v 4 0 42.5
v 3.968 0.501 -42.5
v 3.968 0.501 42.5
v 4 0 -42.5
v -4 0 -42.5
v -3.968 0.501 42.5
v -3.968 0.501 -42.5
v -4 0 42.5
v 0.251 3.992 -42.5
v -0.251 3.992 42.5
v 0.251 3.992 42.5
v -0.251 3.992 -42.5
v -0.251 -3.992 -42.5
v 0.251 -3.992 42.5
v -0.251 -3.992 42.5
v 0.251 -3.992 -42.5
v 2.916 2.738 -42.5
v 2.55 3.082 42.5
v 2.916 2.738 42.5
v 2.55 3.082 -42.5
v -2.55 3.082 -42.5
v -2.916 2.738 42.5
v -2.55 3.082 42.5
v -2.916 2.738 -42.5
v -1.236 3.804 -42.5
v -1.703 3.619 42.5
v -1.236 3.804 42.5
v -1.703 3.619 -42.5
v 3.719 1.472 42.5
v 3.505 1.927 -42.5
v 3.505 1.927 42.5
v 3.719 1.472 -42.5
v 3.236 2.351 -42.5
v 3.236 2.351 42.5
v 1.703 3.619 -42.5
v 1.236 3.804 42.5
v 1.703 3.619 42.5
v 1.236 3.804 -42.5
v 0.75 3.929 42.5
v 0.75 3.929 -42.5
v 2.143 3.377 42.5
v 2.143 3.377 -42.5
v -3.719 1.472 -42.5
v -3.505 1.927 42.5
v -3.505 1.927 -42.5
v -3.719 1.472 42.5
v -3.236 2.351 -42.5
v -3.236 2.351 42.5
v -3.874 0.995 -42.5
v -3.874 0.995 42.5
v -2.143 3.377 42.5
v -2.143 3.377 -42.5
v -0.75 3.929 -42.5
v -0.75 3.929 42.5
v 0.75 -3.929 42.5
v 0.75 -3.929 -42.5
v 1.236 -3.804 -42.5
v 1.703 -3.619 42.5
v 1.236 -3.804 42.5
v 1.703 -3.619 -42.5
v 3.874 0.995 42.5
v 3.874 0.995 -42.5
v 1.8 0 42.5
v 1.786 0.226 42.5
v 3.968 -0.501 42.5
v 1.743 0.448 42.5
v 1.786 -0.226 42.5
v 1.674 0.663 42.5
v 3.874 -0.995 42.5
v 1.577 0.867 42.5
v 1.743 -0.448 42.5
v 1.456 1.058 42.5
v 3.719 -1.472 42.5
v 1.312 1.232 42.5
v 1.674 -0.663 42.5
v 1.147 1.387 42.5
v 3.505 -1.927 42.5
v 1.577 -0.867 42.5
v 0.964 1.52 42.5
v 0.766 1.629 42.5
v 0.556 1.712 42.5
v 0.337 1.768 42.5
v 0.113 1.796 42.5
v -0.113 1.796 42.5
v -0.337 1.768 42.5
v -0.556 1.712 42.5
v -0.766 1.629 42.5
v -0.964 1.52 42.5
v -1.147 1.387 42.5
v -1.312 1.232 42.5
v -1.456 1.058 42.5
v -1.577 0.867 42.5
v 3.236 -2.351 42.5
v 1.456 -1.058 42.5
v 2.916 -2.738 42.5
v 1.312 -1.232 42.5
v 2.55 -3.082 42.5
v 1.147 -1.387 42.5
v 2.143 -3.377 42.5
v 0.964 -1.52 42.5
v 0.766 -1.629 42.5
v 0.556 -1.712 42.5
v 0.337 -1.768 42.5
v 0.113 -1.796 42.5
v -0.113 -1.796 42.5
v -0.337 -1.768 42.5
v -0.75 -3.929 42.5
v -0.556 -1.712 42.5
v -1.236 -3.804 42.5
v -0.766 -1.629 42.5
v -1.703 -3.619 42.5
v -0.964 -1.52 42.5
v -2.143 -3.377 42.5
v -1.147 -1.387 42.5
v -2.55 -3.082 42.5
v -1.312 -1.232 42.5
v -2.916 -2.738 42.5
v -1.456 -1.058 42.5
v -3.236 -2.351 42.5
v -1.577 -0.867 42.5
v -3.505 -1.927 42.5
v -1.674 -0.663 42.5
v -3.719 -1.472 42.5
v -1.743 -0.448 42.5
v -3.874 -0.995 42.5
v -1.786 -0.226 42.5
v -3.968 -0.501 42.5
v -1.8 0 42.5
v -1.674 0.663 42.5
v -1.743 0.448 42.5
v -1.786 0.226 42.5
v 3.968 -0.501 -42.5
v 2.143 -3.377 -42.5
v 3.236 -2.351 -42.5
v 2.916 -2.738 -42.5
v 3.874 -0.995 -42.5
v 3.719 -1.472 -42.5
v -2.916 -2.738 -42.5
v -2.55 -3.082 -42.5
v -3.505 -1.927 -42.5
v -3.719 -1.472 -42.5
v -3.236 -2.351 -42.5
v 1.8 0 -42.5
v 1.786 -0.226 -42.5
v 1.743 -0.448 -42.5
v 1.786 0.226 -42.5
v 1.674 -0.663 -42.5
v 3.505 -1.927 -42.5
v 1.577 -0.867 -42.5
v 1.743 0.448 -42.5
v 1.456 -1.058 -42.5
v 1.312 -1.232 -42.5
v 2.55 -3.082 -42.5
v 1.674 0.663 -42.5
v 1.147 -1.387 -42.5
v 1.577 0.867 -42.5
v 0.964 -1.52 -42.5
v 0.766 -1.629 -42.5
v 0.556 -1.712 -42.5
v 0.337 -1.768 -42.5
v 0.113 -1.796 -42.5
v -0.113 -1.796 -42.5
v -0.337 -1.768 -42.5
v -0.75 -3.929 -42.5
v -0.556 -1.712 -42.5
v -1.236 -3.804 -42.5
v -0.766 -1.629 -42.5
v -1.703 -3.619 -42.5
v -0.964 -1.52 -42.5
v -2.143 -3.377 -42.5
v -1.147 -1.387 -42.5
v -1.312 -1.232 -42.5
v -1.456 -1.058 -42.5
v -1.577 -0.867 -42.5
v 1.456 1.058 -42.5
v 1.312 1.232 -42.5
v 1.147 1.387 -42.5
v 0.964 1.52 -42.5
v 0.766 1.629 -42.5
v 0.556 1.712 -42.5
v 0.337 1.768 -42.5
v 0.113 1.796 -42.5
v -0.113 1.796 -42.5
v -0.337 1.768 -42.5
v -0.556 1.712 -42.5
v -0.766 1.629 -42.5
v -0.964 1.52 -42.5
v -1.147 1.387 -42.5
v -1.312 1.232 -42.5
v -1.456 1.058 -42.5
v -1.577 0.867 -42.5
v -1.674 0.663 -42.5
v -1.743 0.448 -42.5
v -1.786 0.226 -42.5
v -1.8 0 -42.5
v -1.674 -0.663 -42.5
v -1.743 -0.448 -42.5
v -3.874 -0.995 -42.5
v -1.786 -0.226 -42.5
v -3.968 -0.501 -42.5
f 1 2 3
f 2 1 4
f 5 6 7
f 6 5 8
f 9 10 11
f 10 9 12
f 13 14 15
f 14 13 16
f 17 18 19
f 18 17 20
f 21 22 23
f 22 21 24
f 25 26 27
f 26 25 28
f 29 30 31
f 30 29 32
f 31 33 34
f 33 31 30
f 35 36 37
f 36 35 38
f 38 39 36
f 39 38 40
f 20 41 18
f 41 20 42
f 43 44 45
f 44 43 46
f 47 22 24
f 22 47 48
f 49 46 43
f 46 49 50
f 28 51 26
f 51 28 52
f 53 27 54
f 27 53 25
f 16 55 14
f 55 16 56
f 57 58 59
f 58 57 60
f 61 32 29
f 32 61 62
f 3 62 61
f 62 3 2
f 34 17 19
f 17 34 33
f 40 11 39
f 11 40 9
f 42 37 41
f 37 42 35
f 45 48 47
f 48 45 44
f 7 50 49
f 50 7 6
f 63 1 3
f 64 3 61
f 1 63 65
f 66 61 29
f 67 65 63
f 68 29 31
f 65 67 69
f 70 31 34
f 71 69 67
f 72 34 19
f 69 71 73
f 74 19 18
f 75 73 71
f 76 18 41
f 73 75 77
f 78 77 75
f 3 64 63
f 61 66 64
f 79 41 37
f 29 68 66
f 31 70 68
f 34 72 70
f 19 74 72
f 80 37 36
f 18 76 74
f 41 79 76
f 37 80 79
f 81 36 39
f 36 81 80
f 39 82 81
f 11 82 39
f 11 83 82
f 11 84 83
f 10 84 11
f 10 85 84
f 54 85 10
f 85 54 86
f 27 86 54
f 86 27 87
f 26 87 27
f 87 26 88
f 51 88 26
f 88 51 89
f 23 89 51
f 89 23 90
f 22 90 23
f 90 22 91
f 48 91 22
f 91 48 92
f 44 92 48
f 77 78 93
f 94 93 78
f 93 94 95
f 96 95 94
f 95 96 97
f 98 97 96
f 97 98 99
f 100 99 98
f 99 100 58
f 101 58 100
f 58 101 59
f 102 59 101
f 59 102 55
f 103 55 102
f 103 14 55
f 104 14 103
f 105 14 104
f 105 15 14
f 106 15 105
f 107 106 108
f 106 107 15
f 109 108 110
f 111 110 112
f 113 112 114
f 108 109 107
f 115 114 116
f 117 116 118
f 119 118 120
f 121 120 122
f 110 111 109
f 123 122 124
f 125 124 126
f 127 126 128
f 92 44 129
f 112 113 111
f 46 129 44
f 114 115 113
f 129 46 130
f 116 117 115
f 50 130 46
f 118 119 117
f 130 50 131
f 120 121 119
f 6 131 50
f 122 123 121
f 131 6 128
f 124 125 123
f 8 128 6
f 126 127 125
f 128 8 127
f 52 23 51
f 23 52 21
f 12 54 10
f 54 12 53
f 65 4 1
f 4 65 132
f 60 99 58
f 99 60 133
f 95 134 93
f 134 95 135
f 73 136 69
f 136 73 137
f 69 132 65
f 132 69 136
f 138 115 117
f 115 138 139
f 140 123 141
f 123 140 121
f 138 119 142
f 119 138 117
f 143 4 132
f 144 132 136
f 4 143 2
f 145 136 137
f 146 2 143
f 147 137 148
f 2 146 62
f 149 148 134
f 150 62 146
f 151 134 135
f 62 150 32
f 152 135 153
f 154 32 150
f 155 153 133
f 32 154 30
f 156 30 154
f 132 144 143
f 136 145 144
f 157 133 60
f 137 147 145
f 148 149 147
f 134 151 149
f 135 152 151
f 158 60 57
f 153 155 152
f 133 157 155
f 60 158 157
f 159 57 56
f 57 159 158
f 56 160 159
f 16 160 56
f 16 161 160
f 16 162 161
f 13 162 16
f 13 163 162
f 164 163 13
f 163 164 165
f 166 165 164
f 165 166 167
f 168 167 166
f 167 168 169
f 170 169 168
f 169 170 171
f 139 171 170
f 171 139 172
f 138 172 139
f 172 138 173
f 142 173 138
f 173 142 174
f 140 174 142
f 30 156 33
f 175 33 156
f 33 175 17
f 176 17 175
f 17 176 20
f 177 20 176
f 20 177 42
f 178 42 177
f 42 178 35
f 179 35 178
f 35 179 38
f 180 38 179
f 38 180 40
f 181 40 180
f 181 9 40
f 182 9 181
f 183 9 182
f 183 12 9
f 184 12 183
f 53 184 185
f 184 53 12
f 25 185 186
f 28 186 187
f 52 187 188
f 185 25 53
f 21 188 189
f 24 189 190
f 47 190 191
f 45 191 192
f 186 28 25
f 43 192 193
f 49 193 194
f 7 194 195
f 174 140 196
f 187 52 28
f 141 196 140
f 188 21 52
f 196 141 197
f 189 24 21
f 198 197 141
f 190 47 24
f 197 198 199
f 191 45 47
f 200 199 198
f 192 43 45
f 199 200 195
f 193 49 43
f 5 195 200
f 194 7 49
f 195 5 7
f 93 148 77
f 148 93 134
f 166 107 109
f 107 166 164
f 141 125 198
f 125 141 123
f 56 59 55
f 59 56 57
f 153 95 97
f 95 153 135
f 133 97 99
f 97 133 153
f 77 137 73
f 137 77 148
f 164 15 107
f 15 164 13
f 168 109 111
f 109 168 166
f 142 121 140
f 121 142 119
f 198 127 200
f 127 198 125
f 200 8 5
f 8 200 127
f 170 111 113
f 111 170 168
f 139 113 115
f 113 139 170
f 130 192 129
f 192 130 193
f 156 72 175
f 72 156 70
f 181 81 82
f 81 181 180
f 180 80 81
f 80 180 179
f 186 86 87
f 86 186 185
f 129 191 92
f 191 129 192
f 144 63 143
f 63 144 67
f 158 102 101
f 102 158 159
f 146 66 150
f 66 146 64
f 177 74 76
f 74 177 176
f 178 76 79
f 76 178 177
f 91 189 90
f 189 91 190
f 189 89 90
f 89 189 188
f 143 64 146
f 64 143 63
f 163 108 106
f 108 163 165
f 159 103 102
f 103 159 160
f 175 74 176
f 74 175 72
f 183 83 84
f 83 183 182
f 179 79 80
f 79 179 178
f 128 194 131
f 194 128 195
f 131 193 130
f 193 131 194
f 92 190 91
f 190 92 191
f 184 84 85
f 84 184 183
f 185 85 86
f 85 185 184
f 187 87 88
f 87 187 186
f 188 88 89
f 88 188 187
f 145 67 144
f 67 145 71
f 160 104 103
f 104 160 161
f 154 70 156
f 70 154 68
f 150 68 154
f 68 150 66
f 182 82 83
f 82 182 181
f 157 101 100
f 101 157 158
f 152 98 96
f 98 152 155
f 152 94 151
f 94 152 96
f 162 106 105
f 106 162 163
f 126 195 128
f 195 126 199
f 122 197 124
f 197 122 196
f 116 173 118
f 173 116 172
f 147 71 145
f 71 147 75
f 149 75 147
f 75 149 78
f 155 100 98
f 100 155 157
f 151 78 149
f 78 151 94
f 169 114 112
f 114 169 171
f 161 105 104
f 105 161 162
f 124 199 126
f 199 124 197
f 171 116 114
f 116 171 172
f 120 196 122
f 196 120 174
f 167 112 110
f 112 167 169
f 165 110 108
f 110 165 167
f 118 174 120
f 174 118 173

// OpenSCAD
$fn = 50;


difference() {
	union() {
		translate(v = [0, 0, -42.5000000000]) {
			cylinder(h = 85, r = 4.0000000000);
		}
	}
	union() {
		translate(v = [0, 0, -100.0000000000]) {
			cylinder(h = 200, r = 1.8000000000);
		}
	}
}
